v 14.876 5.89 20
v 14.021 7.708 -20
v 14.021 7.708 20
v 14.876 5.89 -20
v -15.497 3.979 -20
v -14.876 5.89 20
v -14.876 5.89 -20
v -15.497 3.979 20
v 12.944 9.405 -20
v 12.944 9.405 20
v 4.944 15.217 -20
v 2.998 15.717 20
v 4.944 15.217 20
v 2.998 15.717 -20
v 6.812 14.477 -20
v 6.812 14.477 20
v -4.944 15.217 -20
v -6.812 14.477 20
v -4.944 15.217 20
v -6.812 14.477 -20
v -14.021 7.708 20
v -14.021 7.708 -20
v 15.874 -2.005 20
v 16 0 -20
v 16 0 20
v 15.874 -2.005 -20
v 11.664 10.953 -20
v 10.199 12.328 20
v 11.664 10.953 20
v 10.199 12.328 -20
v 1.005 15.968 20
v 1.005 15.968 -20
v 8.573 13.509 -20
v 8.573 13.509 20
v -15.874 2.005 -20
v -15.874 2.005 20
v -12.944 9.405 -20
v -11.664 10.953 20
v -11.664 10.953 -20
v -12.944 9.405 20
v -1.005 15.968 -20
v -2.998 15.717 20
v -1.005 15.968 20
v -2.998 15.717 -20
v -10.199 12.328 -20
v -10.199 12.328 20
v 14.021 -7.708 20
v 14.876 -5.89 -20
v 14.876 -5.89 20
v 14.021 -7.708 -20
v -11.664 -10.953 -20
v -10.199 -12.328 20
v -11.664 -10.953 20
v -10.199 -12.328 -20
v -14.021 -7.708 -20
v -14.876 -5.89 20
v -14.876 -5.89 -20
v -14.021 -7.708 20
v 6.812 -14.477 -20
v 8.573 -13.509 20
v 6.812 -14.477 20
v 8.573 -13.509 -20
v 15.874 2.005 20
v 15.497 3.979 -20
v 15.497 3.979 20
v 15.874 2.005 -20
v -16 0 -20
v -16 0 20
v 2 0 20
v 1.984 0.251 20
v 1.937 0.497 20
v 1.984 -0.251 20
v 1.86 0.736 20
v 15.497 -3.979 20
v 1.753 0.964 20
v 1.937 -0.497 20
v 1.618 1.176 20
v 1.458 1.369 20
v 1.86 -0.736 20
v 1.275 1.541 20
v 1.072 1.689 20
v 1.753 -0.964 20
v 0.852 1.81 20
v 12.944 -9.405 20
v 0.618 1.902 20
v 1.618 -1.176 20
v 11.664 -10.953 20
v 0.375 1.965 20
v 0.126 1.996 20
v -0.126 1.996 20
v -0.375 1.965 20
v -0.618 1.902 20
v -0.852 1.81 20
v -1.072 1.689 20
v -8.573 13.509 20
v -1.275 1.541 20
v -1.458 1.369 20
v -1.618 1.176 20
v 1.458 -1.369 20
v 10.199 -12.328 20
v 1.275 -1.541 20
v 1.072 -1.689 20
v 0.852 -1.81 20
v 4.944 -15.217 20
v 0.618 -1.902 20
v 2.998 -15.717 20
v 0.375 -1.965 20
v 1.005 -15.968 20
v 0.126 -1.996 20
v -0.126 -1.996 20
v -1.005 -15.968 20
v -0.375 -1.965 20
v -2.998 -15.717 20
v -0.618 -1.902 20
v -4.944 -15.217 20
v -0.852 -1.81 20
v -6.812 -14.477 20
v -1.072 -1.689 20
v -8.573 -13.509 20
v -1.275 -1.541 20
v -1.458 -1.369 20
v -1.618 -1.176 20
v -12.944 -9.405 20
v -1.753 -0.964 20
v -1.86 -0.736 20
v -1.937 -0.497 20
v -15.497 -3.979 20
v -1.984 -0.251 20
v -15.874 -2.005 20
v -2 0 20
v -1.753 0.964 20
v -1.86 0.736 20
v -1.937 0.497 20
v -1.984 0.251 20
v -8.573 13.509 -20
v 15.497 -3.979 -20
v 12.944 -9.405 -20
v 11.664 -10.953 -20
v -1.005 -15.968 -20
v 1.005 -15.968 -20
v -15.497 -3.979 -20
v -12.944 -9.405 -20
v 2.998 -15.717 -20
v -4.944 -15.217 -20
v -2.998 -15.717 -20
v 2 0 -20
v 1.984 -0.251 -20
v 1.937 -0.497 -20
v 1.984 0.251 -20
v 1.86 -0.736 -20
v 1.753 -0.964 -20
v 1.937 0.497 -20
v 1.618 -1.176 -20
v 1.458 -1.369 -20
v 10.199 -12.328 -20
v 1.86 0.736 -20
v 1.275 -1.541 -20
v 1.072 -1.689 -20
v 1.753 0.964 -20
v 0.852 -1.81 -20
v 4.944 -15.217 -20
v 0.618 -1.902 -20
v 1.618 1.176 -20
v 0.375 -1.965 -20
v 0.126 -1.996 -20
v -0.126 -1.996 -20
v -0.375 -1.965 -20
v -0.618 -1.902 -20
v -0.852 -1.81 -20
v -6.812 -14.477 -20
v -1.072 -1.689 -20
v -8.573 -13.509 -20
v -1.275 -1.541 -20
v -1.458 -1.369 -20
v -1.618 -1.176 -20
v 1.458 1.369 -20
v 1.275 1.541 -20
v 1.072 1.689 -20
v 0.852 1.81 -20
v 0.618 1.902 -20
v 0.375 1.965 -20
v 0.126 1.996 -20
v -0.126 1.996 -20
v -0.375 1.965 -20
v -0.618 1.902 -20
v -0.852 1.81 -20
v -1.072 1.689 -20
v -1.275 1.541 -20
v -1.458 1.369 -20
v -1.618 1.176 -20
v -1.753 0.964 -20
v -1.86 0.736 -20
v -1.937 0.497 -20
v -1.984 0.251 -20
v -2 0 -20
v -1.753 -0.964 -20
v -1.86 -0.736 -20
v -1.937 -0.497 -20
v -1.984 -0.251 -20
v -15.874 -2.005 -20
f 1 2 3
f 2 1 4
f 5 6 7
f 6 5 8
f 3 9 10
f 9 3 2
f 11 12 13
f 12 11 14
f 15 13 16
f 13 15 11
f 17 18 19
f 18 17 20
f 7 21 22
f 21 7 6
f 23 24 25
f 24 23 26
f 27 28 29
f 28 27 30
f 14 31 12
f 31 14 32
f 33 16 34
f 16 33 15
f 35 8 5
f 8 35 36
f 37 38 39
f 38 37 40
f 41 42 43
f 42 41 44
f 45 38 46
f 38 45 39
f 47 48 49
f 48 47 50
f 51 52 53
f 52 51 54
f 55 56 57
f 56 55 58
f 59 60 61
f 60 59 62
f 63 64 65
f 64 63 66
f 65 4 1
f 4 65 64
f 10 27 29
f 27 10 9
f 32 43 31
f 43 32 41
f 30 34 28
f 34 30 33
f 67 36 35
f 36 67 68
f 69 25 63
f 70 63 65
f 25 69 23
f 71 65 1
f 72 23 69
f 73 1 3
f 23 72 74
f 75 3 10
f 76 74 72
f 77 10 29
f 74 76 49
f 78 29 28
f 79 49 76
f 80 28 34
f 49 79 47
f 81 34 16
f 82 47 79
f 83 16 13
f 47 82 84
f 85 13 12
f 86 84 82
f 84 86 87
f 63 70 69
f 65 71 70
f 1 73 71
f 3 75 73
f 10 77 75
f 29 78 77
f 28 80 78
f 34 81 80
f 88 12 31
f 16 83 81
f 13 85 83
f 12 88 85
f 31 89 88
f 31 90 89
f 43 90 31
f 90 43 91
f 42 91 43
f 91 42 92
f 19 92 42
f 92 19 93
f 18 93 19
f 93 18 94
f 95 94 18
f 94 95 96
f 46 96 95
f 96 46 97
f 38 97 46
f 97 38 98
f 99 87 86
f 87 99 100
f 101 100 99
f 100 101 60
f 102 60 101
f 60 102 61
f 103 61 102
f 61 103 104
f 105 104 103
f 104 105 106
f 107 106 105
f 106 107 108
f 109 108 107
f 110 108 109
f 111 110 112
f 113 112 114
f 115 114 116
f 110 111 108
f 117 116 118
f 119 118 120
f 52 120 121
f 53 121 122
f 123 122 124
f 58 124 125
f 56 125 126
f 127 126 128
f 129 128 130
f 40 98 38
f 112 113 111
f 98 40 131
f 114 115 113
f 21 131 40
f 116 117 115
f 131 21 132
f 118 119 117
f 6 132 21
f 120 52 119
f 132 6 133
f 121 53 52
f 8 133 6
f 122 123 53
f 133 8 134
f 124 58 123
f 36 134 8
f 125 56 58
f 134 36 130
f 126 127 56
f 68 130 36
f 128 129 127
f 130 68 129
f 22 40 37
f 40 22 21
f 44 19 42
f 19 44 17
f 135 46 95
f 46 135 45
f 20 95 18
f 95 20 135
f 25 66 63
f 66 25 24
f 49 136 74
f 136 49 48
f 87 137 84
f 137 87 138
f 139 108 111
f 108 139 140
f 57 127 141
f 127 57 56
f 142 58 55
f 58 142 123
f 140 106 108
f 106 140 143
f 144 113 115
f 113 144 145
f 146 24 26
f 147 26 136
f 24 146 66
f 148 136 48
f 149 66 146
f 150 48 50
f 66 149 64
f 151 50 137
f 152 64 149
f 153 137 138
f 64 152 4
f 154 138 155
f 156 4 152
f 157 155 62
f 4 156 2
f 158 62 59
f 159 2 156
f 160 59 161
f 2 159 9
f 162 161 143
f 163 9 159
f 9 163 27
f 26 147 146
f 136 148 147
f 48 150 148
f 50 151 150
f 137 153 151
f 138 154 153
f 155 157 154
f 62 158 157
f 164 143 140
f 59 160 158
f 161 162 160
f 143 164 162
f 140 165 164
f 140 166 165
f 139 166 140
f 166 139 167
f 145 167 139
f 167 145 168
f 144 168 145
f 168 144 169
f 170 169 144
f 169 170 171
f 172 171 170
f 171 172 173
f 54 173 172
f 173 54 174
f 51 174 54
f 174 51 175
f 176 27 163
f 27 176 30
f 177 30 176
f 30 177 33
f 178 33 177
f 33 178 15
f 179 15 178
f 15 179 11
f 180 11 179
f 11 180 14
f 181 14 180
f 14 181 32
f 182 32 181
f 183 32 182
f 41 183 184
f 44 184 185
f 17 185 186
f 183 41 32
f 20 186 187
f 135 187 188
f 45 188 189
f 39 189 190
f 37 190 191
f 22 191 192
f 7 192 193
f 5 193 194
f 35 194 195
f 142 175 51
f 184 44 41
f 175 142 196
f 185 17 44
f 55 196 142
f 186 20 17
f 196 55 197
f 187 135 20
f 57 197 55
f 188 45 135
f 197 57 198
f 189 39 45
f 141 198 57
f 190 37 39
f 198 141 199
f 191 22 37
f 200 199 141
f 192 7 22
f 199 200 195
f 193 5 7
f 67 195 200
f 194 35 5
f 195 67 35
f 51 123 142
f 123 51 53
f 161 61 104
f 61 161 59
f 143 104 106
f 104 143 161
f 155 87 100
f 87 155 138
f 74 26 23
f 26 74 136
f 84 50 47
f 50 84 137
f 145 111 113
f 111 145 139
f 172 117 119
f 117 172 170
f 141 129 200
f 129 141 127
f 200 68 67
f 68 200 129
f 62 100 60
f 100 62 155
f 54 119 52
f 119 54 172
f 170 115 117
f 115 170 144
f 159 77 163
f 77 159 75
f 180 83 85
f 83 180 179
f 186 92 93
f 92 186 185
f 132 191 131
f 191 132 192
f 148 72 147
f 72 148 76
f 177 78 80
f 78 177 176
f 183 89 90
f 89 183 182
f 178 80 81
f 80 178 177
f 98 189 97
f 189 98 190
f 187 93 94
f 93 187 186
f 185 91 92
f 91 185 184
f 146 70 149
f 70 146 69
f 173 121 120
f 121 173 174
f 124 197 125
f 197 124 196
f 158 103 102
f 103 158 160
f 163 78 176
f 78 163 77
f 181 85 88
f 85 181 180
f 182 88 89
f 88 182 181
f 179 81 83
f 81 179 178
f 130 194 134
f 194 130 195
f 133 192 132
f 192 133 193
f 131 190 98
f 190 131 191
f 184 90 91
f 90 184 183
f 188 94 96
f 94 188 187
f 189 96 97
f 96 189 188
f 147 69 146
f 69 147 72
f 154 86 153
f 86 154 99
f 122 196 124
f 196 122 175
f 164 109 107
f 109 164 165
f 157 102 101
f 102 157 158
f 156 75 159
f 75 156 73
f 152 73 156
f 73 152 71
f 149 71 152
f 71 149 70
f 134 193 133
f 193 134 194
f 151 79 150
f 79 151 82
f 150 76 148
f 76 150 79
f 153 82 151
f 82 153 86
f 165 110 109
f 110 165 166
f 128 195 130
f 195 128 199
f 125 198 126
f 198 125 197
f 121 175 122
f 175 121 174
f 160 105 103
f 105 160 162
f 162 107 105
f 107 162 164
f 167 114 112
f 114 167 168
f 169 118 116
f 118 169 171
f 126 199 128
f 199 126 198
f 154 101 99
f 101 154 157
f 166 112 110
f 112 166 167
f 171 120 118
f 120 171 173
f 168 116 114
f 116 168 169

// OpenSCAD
$fn = 50;


difference() {
	union() {
		translate(v = [0, 0, -20.0000000000]) {
			cylinder(h = 40, r = 16.0000000000);
		}
	}
	union() {
		translate(v = [0, 0, -100.0000000000]) {
			cylinder(h = 200, r = 2);
		}
	}
}
